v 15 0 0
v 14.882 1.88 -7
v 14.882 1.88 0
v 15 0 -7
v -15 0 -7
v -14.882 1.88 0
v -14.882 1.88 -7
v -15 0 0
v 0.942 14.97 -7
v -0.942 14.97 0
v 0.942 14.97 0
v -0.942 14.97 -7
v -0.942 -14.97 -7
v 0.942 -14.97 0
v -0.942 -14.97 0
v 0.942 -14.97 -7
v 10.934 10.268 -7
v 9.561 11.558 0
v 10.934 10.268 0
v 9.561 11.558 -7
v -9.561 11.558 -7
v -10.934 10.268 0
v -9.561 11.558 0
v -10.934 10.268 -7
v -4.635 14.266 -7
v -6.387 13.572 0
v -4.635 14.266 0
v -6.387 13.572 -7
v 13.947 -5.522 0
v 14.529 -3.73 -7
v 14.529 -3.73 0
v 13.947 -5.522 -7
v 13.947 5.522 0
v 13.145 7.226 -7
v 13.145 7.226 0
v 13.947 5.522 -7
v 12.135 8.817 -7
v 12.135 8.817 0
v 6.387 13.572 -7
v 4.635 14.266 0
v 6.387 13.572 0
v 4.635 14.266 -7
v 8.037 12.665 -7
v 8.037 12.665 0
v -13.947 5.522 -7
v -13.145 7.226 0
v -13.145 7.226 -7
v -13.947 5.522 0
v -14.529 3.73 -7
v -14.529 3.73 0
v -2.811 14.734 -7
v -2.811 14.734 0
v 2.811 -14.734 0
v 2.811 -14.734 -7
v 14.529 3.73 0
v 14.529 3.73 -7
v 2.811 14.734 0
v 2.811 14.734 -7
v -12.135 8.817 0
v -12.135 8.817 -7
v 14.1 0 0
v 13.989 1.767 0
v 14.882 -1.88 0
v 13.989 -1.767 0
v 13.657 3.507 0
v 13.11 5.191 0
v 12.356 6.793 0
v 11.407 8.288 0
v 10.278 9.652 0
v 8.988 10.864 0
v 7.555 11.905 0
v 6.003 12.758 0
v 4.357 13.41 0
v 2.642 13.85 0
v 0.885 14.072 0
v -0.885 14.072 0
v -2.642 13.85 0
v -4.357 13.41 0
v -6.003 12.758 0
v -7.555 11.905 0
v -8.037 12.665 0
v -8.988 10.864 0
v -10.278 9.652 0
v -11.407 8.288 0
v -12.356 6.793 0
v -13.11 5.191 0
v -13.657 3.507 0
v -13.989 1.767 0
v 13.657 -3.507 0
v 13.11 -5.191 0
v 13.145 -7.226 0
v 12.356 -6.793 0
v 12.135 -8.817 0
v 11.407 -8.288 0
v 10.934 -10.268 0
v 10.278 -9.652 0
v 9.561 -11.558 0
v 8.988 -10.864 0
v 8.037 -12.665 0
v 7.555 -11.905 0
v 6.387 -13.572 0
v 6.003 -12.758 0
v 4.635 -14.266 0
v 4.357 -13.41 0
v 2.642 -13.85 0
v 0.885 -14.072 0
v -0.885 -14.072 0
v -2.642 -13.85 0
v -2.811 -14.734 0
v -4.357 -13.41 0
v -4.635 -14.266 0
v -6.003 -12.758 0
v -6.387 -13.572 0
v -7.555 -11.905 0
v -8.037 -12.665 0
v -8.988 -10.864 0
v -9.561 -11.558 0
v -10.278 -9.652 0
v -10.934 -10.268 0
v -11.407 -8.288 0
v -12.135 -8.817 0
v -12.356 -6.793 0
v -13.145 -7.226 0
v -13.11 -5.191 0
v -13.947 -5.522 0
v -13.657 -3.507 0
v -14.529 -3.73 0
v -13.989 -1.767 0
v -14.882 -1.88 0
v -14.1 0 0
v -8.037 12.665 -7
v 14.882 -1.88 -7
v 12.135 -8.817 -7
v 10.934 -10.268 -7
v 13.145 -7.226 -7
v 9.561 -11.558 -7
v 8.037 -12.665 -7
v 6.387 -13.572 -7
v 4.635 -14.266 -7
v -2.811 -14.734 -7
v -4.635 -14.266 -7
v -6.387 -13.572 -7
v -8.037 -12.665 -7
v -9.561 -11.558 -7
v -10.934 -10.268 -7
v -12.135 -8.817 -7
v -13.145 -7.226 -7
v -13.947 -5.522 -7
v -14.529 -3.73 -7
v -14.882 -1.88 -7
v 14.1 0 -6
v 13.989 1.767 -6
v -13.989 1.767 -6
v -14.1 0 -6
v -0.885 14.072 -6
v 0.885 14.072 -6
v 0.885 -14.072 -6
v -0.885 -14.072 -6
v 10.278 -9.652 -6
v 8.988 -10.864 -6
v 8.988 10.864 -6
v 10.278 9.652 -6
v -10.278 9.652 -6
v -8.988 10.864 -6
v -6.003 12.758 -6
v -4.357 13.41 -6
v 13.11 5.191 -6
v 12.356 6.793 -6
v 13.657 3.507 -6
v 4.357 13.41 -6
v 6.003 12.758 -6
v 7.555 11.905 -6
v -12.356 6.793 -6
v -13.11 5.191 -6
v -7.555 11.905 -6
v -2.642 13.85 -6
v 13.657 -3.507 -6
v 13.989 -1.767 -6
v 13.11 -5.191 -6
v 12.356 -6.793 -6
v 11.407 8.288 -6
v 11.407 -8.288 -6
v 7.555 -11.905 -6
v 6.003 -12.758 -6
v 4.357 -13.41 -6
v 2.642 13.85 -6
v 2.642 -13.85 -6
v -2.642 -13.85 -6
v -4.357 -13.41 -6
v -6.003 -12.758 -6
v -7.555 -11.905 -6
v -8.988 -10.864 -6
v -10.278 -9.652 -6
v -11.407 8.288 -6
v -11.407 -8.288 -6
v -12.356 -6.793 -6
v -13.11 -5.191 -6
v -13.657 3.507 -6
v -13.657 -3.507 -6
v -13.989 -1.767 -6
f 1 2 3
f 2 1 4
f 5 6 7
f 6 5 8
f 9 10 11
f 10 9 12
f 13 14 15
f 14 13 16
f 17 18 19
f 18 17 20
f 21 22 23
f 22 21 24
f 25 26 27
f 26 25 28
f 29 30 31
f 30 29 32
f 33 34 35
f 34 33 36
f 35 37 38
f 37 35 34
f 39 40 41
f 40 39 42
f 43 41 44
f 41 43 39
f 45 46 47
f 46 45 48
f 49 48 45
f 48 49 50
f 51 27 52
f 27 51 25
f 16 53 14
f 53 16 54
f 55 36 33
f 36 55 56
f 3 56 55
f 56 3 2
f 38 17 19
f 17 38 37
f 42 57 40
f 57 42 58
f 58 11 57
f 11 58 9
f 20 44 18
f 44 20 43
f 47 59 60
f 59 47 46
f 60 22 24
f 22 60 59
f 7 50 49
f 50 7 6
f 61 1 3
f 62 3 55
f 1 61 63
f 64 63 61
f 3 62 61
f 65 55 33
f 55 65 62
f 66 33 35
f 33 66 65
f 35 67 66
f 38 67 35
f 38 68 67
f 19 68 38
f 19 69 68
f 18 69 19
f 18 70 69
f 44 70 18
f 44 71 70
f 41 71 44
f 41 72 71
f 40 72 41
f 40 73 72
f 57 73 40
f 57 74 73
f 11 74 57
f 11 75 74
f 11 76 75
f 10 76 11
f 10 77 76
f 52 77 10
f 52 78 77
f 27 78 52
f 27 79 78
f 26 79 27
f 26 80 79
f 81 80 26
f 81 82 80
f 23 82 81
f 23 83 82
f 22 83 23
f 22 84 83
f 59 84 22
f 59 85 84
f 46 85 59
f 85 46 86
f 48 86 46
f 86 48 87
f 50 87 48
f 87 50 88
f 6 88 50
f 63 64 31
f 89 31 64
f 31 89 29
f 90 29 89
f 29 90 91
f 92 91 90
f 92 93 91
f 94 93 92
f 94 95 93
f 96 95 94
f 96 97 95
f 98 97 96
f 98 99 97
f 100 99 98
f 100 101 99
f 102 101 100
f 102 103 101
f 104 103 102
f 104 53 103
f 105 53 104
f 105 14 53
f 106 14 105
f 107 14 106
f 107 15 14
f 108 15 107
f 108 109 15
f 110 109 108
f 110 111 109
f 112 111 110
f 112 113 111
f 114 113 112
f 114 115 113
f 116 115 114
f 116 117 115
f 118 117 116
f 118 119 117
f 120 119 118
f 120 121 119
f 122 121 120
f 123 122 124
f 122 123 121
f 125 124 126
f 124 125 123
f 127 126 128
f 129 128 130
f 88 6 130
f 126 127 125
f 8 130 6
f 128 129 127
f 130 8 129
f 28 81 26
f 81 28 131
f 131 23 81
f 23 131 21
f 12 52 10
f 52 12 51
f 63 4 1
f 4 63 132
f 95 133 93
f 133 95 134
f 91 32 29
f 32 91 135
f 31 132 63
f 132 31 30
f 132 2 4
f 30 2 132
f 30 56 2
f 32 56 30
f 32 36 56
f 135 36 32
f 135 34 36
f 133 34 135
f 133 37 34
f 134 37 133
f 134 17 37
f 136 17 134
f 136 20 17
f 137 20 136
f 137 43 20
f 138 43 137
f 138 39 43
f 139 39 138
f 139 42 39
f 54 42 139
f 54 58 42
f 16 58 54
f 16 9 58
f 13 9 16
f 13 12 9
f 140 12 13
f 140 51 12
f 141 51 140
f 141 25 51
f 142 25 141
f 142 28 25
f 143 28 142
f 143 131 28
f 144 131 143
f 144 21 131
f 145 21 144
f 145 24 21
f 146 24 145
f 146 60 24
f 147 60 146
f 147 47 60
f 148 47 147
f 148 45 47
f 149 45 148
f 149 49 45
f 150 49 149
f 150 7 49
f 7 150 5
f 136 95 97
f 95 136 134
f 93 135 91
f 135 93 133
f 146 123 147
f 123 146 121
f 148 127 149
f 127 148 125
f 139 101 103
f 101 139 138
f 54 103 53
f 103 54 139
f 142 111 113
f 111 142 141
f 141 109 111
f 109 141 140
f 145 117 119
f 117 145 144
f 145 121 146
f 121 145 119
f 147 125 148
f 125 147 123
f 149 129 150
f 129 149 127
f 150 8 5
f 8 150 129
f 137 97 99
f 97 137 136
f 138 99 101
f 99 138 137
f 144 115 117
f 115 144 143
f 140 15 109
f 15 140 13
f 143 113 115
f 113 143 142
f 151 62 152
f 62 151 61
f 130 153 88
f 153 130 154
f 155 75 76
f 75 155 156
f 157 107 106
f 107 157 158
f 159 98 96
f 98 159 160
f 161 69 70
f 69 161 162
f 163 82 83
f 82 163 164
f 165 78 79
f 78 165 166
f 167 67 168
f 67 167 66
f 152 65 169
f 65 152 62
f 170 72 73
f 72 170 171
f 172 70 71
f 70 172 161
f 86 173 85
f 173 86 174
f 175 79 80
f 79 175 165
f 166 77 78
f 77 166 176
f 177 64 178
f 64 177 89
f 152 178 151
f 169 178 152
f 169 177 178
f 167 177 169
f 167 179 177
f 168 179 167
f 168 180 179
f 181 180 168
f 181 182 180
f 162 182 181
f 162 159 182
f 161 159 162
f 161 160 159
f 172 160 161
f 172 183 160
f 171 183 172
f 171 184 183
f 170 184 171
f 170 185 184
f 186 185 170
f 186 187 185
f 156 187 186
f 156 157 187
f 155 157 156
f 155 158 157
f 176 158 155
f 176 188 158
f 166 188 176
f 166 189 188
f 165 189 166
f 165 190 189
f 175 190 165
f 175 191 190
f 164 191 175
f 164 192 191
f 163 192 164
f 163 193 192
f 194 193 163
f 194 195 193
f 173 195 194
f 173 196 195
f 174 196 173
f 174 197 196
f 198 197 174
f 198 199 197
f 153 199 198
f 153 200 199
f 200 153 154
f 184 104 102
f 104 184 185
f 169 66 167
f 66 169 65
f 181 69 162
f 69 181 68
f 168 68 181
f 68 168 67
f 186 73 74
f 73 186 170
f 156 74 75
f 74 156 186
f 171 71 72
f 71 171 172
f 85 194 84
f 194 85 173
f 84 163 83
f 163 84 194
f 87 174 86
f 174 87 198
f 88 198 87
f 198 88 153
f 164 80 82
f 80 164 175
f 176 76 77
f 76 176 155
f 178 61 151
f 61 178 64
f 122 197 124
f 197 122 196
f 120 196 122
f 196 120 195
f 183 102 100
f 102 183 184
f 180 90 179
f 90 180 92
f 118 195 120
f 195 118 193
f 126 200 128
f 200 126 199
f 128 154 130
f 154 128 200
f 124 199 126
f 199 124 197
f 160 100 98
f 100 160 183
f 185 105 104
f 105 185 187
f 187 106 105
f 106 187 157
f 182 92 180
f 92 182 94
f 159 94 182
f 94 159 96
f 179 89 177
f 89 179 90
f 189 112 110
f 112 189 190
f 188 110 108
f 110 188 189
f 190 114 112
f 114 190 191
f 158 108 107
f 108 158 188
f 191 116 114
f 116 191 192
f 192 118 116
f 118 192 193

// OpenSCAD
$fn = 50;


difference() {
	union() {
		translate(v = [0, 0, -7.0000000000]) {
			cylinder(h = 7, r = 15.0000000000);
		}
	}
	union() {
		#translate(v = [0, 0, -6.0000000000]) {
			cylinder(h = 6, r = 14.1000000000);
		}
	}
}
